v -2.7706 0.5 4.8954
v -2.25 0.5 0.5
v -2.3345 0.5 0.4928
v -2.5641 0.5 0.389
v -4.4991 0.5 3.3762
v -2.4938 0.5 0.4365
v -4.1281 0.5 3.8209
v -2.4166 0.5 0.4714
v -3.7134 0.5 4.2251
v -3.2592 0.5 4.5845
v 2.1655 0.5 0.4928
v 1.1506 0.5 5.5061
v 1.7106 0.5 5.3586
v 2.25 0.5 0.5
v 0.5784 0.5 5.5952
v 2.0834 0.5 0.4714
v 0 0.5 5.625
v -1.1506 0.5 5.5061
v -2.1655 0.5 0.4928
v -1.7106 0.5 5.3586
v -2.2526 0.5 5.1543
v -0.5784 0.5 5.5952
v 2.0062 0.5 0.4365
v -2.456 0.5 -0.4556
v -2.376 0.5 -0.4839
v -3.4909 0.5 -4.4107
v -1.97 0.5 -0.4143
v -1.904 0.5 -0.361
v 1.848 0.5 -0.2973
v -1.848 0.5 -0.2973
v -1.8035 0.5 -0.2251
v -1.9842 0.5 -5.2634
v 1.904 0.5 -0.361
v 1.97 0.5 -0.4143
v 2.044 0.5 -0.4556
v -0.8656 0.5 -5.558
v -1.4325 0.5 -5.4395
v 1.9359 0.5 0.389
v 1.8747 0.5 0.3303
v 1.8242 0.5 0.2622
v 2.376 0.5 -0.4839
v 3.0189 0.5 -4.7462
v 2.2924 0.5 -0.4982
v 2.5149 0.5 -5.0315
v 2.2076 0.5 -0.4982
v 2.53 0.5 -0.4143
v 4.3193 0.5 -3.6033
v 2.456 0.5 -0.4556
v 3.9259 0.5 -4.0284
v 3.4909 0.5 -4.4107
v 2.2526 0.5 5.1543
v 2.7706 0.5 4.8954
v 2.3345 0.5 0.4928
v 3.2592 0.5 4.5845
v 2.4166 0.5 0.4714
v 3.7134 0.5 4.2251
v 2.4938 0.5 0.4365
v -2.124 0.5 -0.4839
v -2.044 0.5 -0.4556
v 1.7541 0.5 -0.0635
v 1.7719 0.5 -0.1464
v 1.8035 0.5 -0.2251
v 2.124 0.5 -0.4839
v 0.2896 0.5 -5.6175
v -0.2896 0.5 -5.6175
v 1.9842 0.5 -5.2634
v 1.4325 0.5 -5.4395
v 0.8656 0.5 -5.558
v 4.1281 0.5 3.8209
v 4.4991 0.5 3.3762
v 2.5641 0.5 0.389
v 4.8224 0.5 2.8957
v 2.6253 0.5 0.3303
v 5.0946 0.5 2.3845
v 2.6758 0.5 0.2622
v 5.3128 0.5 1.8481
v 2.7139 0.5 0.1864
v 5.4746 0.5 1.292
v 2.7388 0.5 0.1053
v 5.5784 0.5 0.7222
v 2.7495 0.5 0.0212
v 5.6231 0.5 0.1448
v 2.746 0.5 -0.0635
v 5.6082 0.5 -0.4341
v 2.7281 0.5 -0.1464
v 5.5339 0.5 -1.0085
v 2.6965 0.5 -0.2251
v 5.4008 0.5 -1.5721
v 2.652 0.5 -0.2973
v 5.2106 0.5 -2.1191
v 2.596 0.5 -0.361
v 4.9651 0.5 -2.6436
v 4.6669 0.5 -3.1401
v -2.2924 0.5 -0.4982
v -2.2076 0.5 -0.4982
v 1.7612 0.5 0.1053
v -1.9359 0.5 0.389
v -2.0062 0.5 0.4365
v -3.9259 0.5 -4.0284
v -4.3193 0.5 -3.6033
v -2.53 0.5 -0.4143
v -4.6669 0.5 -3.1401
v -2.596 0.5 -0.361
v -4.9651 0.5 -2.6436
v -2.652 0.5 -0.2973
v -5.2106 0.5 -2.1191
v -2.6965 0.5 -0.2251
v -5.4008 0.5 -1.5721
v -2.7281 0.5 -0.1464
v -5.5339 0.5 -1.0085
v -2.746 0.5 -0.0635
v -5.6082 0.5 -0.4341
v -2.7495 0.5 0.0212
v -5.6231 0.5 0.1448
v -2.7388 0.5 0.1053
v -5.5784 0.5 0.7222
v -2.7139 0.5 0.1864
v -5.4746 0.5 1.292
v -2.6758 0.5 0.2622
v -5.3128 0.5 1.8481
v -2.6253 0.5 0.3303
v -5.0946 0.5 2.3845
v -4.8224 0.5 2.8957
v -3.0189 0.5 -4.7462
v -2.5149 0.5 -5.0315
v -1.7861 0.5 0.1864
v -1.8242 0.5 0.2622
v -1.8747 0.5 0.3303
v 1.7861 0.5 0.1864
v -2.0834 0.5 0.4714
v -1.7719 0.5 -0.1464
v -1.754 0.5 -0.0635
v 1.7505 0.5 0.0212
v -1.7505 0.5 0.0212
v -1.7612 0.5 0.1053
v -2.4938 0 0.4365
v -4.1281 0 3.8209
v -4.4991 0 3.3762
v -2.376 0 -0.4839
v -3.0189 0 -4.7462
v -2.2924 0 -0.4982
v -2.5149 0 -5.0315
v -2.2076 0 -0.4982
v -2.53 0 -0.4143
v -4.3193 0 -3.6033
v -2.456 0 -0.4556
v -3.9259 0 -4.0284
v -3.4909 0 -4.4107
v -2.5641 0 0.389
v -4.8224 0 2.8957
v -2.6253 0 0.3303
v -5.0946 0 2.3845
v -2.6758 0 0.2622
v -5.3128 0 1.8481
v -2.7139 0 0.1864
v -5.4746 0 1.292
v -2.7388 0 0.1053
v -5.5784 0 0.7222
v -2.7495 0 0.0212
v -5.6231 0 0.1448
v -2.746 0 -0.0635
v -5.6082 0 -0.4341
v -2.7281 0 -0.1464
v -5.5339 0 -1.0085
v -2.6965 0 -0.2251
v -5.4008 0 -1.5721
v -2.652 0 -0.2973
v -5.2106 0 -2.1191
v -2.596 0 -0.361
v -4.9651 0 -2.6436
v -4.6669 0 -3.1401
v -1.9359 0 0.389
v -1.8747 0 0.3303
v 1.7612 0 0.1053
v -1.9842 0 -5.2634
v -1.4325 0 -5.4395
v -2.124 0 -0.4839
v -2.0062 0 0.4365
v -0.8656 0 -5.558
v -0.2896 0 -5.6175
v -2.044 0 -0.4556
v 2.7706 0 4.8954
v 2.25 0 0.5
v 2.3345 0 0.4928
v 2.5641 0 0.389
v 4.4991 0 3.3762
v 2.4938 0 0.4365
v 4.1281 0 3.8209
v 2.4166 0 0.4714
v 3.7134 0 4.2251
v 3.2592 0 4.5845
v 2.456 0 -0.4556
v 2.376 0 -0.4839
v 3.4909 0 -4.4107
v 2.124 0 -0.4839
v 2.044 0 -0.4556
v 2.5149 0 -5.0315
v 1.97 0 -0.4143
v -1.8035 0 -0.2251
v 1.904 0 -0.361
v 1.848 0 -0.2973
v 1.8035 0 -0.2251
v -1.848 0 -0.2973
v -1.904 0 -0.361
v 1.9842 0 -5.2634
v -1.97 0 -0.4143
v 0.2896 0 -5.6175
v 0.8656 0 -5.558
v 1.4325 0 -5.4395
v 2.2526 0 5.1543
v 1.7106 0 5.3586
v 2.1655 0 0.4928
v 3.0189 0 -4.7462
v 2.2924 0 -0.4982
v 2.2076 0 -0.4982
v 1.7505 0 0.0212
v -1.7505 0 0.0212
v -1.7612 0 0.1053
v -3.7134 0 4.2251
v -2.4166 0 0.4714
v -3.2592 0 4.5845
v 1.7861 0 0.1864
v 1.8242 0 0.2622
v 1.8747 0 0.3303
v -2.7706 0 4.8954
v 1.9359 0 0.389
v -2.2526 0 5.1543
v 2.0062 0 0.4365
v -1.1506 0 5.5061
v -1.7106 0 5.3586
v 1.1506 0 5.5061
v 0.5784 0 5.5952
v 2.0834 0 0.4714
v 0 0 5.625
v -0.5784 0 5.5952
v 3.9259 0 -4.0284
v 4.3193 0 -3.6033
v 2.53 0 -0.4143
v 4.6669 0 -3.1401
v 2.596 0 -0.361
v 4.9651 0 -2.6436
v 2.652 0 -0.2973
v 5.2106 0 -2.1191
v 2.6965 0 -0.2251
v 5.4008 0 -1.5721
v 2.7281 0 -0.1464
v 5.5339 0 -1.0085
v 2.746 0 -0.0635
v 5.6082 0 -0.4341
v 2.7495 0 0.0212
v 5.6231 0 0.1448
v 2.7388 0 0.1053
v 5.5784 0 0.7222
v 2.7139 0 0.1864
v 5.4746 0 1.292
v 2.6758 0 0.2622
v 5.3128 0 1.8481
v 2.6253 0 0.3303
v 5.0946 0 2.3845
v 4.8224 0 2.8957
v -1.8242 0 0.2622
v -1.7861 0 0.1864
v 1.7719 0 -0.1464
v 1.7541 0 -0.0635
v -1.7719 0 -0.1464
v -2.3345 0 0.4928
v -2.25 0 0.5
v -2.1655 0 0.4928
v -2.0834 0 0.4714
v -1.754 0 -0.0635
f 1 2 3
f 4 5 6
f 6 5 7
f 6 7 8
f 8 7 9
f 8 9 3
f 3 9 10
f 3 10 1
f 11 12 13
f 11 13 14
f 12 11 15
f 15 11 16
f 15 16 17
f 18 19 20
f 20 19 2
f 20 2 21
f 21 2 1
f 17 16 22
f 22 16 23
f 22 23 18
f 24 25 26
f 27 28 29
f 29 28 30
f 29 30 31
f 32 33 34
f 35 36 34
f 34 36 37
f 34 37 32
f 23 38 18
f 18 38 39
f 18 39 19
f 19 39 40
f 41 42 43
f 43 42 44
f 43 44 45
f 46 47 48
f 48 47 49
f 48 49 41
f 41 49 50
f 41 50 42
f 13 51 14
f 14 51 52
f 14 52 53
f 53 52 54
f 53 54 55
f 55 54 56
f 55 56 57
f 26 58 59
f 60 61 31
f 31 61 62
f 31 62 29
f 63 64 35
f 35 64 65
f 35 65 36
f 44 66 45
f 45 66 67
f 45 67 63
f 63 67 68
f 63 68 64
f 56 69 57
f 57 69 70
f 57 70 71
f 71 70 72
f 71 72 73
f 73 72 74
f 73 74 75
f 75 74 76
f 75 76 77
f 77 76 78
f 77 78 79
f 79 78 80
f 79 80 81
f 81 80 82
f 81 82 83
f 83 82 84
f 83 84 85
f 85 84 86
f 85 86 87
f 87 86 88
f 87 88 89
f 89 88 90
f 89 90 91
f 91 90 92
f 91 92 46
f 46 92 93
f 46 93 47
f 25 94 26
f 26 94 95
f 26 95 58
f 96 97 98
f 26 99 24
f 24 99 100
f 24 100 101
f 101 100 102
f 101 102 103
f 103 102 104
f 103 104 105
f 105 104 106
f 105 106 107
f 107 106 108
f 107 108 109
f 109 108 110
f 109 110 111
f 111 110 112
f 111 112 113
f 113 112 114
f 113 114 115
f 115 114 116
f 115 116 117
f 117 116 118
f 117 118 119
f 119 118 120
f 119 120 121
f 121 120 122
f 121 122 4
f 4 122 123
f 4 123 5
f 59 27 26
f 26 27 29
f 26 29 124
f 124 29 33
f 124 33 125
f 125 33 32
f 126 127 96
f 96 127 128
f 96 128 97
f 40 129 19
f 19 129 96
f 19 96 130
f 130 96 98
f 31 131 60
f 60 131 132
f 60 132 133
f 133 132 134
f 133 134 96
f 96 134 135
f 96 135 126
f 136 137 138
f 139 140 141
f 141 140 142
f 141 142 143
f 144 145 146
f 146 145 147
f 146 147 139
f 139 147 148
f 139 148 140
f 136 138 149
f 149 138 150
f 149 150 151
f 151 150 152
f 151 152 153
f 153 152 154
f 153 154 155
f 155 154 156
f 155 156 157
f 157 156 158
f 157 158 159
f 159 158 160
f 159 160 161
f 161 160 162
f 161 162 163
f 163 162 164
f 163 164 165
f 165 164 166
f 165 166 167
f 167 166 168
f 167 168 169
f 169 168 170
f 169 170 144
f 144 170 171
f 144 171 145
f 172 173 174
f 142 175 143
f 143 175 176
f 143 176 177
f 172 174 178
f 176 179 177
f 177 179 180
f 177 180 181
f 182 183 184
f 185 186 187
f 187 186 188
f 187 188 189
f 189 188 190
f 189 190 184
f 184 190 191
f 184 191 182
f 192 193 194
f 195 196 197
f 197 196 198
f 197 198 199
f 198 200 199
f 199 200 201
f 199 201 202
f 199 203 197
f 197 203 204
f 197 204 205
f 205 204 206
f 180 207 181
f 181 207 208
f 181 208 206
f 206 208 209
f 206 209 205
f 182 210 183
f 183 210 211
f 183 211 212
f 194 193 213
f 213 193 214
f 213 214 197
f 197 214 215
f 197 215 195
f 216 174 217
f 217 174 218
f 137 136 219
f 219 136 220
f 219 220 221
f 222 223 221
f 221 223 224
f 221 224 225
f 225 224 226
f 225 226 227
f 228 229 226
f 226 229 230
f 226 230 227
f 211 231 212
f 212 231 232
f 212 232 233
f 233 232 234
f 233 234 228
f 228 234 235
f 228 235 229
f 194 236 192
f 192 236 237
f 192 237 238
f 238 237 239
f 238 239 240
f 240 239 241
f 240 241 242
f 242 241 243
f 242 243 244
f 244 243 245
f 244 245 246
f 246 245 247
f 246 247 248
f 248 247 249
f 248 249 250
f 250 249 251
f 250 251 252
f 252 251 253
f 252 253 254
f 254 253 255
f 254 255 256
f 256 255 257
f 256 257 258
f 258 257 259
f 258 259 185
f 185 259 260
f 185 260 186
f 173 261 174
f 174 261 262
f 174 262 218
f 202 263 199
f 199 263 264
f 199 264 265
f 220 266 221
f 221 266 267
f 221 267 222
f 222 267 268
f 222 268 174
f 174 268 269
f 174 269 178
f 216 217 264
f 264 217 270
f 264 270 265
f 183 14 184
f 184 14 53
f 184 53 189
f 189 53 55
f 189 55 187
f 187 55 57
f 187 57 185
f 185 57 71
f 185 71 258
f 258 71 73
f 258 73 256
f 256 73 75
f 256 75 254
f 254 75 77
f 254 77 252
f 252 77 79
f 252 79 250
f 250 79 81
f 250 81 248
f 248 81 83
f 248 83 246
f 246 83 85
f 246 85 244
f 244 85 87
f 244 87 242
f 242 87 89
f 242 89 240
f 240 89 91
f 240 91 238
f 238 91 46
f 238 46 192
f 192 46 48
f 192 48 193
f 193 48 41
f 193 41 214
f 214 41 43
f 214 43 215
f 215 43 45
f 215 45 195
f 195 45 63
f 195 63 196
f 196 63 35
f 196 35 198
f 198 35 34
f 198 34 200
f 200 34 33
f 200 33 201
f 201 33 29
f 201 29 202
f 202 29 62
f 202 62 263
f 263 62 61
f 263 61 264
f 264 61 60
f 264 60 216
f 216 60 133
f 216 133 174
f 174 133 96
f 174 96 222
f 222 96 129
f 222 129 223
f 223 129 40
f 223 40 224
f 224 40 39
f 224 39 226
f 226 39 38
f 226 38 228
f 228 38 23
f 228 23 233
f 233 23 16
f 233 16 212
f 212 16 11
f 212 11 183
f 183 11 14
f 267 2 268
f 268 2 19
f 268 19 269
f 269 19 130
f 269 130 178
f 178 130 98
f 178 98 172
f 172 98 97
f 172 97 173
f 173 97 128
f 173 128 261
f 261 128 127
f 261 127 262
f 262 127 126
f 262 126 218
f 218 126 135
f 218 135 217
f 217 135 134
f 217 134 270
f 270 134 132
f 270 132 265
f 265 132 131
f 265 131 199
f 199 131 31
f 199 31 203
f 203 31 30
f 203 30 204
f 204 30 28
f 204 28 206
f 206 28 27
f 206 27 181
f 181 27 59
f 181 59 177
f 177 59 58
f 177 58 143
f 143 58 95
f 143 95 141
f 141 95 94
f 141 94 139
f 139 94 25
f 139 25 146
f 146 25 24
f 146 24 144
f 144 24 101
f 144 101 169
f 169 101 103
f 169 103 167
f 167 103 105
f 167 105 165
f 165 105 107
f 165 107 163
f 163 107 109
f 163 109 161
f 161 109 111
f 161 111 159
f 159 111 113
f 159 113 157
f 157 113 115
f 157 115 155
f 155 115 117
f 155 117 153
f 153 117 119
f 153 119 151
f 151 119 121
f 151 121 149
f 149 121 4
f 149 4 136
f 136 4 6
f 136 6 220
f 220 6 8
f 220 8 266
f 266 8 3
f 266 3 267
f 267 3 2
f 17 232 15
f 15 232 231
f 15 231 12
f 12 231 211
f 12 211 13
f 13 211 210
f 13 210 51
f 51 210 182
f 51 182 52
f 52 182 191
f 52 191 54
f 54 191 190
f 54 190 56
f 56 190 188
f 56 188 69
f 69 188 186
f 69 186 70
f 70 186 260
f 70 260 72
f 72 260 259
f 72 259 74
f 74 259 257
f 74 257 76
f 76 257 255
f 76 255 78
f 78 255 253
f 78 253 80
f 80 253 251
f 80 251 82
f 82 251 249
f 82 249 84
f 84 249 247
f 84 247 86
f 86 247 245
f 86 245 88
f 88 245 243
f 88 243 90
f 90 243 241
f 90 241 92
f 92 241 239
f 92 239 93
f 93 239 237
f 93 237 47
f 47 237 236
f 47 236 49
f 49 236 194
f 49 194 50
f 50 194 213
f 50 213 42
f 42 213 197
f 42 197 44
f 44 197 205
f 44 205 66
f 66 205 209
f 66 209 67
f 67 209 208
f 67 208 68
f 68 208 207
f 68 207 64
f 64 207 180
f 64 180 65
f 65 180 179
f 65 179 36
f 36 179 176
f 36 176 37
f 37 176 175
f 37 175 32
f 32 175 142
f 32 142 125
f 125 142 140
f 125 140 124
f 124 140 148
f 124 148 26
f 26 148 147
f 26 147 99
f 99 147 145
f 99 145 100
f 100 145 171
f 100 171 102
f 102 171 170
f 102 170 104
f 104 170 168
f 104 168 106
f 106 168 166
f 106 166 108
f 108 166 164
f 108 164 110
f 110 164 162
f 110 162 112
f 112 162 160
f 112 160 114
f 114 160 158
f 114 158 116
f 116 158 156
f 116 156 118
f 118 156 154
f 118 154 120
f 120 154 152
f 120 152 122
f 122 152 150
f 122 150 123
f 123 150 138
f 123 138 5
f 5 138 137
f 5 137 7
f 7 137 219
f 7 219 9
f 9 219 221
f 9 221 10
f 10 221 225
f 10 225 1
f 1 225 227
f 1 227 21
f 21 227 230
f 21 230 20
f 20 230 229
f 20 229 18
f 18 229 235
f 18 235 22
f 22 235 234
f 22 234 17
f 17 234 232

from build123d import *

# Parameters (mm, degrees)
SKETCH1_R           = 4.5
BOSS_EXTRUDE1_DEPTH = 0.5
SKETCH2_R           = 0.5
CUT_EXTRUDE1_DEPTH  = 7.383572667
BOSS_EXTRUDE2_START = -0.5
SKETCH3_R           = 5.625
SKETCH3_R_2         = 4.5
BOSS_EXTRUDE2_DEPTH = 0.5


with BuildPart() as part:
    # Sketch1 → Boss-Extrude1 (new body)
    with BuildSketch(Plane(origin=(0, 0, 0), x_dir=(1, 0, 0), z_dir=(0, 1, 0))):
        with Locations(Location((0, 0, 0), (0, 0, 270))):
            Circle(SKETCH1_R)
    extrude(amount=BOSS_EXTRUDE1_DEPTH)

    # Sketch2 → Cut-Extrude1 (cut, through all)
    with BuildSketch(Plane(origin=(0, 0.5, 0), x_dir=(1, 0, 0), z_dir=(0, 1, 0))):
        with Locations(Location((-2.25, 0, 0), (0, 0, 270))):
            Circle(SKETCH2_R)
        with Locations(Location((2.25, 0, 0), (0, 0, 270))):
            Circle(SKETCH2_R)
    extrude(amount=-CUT_EXTRUDE1_DEPTH, mode=Mode.SUBTRACT)

    # Sketch3 → Boss-Extrude2 (add)
    with BuildSketch(Plane(origin=(0, 0.5, 0), x_dir=(1, 0, 0), z_dir=(0, 1, 0)).offset(BOSS_EXTRUDE2_START)):
        with Locations(Location((0, 0, 0), (0, 0, 270))):
            Circle(SKETCH3_R)
        Circle(SKETCH3_R_2, mode=Mode.SUBTRACT)
    extrude(amount=BOSS_EXTRUDE2_DEPTH)


solid = part.part
